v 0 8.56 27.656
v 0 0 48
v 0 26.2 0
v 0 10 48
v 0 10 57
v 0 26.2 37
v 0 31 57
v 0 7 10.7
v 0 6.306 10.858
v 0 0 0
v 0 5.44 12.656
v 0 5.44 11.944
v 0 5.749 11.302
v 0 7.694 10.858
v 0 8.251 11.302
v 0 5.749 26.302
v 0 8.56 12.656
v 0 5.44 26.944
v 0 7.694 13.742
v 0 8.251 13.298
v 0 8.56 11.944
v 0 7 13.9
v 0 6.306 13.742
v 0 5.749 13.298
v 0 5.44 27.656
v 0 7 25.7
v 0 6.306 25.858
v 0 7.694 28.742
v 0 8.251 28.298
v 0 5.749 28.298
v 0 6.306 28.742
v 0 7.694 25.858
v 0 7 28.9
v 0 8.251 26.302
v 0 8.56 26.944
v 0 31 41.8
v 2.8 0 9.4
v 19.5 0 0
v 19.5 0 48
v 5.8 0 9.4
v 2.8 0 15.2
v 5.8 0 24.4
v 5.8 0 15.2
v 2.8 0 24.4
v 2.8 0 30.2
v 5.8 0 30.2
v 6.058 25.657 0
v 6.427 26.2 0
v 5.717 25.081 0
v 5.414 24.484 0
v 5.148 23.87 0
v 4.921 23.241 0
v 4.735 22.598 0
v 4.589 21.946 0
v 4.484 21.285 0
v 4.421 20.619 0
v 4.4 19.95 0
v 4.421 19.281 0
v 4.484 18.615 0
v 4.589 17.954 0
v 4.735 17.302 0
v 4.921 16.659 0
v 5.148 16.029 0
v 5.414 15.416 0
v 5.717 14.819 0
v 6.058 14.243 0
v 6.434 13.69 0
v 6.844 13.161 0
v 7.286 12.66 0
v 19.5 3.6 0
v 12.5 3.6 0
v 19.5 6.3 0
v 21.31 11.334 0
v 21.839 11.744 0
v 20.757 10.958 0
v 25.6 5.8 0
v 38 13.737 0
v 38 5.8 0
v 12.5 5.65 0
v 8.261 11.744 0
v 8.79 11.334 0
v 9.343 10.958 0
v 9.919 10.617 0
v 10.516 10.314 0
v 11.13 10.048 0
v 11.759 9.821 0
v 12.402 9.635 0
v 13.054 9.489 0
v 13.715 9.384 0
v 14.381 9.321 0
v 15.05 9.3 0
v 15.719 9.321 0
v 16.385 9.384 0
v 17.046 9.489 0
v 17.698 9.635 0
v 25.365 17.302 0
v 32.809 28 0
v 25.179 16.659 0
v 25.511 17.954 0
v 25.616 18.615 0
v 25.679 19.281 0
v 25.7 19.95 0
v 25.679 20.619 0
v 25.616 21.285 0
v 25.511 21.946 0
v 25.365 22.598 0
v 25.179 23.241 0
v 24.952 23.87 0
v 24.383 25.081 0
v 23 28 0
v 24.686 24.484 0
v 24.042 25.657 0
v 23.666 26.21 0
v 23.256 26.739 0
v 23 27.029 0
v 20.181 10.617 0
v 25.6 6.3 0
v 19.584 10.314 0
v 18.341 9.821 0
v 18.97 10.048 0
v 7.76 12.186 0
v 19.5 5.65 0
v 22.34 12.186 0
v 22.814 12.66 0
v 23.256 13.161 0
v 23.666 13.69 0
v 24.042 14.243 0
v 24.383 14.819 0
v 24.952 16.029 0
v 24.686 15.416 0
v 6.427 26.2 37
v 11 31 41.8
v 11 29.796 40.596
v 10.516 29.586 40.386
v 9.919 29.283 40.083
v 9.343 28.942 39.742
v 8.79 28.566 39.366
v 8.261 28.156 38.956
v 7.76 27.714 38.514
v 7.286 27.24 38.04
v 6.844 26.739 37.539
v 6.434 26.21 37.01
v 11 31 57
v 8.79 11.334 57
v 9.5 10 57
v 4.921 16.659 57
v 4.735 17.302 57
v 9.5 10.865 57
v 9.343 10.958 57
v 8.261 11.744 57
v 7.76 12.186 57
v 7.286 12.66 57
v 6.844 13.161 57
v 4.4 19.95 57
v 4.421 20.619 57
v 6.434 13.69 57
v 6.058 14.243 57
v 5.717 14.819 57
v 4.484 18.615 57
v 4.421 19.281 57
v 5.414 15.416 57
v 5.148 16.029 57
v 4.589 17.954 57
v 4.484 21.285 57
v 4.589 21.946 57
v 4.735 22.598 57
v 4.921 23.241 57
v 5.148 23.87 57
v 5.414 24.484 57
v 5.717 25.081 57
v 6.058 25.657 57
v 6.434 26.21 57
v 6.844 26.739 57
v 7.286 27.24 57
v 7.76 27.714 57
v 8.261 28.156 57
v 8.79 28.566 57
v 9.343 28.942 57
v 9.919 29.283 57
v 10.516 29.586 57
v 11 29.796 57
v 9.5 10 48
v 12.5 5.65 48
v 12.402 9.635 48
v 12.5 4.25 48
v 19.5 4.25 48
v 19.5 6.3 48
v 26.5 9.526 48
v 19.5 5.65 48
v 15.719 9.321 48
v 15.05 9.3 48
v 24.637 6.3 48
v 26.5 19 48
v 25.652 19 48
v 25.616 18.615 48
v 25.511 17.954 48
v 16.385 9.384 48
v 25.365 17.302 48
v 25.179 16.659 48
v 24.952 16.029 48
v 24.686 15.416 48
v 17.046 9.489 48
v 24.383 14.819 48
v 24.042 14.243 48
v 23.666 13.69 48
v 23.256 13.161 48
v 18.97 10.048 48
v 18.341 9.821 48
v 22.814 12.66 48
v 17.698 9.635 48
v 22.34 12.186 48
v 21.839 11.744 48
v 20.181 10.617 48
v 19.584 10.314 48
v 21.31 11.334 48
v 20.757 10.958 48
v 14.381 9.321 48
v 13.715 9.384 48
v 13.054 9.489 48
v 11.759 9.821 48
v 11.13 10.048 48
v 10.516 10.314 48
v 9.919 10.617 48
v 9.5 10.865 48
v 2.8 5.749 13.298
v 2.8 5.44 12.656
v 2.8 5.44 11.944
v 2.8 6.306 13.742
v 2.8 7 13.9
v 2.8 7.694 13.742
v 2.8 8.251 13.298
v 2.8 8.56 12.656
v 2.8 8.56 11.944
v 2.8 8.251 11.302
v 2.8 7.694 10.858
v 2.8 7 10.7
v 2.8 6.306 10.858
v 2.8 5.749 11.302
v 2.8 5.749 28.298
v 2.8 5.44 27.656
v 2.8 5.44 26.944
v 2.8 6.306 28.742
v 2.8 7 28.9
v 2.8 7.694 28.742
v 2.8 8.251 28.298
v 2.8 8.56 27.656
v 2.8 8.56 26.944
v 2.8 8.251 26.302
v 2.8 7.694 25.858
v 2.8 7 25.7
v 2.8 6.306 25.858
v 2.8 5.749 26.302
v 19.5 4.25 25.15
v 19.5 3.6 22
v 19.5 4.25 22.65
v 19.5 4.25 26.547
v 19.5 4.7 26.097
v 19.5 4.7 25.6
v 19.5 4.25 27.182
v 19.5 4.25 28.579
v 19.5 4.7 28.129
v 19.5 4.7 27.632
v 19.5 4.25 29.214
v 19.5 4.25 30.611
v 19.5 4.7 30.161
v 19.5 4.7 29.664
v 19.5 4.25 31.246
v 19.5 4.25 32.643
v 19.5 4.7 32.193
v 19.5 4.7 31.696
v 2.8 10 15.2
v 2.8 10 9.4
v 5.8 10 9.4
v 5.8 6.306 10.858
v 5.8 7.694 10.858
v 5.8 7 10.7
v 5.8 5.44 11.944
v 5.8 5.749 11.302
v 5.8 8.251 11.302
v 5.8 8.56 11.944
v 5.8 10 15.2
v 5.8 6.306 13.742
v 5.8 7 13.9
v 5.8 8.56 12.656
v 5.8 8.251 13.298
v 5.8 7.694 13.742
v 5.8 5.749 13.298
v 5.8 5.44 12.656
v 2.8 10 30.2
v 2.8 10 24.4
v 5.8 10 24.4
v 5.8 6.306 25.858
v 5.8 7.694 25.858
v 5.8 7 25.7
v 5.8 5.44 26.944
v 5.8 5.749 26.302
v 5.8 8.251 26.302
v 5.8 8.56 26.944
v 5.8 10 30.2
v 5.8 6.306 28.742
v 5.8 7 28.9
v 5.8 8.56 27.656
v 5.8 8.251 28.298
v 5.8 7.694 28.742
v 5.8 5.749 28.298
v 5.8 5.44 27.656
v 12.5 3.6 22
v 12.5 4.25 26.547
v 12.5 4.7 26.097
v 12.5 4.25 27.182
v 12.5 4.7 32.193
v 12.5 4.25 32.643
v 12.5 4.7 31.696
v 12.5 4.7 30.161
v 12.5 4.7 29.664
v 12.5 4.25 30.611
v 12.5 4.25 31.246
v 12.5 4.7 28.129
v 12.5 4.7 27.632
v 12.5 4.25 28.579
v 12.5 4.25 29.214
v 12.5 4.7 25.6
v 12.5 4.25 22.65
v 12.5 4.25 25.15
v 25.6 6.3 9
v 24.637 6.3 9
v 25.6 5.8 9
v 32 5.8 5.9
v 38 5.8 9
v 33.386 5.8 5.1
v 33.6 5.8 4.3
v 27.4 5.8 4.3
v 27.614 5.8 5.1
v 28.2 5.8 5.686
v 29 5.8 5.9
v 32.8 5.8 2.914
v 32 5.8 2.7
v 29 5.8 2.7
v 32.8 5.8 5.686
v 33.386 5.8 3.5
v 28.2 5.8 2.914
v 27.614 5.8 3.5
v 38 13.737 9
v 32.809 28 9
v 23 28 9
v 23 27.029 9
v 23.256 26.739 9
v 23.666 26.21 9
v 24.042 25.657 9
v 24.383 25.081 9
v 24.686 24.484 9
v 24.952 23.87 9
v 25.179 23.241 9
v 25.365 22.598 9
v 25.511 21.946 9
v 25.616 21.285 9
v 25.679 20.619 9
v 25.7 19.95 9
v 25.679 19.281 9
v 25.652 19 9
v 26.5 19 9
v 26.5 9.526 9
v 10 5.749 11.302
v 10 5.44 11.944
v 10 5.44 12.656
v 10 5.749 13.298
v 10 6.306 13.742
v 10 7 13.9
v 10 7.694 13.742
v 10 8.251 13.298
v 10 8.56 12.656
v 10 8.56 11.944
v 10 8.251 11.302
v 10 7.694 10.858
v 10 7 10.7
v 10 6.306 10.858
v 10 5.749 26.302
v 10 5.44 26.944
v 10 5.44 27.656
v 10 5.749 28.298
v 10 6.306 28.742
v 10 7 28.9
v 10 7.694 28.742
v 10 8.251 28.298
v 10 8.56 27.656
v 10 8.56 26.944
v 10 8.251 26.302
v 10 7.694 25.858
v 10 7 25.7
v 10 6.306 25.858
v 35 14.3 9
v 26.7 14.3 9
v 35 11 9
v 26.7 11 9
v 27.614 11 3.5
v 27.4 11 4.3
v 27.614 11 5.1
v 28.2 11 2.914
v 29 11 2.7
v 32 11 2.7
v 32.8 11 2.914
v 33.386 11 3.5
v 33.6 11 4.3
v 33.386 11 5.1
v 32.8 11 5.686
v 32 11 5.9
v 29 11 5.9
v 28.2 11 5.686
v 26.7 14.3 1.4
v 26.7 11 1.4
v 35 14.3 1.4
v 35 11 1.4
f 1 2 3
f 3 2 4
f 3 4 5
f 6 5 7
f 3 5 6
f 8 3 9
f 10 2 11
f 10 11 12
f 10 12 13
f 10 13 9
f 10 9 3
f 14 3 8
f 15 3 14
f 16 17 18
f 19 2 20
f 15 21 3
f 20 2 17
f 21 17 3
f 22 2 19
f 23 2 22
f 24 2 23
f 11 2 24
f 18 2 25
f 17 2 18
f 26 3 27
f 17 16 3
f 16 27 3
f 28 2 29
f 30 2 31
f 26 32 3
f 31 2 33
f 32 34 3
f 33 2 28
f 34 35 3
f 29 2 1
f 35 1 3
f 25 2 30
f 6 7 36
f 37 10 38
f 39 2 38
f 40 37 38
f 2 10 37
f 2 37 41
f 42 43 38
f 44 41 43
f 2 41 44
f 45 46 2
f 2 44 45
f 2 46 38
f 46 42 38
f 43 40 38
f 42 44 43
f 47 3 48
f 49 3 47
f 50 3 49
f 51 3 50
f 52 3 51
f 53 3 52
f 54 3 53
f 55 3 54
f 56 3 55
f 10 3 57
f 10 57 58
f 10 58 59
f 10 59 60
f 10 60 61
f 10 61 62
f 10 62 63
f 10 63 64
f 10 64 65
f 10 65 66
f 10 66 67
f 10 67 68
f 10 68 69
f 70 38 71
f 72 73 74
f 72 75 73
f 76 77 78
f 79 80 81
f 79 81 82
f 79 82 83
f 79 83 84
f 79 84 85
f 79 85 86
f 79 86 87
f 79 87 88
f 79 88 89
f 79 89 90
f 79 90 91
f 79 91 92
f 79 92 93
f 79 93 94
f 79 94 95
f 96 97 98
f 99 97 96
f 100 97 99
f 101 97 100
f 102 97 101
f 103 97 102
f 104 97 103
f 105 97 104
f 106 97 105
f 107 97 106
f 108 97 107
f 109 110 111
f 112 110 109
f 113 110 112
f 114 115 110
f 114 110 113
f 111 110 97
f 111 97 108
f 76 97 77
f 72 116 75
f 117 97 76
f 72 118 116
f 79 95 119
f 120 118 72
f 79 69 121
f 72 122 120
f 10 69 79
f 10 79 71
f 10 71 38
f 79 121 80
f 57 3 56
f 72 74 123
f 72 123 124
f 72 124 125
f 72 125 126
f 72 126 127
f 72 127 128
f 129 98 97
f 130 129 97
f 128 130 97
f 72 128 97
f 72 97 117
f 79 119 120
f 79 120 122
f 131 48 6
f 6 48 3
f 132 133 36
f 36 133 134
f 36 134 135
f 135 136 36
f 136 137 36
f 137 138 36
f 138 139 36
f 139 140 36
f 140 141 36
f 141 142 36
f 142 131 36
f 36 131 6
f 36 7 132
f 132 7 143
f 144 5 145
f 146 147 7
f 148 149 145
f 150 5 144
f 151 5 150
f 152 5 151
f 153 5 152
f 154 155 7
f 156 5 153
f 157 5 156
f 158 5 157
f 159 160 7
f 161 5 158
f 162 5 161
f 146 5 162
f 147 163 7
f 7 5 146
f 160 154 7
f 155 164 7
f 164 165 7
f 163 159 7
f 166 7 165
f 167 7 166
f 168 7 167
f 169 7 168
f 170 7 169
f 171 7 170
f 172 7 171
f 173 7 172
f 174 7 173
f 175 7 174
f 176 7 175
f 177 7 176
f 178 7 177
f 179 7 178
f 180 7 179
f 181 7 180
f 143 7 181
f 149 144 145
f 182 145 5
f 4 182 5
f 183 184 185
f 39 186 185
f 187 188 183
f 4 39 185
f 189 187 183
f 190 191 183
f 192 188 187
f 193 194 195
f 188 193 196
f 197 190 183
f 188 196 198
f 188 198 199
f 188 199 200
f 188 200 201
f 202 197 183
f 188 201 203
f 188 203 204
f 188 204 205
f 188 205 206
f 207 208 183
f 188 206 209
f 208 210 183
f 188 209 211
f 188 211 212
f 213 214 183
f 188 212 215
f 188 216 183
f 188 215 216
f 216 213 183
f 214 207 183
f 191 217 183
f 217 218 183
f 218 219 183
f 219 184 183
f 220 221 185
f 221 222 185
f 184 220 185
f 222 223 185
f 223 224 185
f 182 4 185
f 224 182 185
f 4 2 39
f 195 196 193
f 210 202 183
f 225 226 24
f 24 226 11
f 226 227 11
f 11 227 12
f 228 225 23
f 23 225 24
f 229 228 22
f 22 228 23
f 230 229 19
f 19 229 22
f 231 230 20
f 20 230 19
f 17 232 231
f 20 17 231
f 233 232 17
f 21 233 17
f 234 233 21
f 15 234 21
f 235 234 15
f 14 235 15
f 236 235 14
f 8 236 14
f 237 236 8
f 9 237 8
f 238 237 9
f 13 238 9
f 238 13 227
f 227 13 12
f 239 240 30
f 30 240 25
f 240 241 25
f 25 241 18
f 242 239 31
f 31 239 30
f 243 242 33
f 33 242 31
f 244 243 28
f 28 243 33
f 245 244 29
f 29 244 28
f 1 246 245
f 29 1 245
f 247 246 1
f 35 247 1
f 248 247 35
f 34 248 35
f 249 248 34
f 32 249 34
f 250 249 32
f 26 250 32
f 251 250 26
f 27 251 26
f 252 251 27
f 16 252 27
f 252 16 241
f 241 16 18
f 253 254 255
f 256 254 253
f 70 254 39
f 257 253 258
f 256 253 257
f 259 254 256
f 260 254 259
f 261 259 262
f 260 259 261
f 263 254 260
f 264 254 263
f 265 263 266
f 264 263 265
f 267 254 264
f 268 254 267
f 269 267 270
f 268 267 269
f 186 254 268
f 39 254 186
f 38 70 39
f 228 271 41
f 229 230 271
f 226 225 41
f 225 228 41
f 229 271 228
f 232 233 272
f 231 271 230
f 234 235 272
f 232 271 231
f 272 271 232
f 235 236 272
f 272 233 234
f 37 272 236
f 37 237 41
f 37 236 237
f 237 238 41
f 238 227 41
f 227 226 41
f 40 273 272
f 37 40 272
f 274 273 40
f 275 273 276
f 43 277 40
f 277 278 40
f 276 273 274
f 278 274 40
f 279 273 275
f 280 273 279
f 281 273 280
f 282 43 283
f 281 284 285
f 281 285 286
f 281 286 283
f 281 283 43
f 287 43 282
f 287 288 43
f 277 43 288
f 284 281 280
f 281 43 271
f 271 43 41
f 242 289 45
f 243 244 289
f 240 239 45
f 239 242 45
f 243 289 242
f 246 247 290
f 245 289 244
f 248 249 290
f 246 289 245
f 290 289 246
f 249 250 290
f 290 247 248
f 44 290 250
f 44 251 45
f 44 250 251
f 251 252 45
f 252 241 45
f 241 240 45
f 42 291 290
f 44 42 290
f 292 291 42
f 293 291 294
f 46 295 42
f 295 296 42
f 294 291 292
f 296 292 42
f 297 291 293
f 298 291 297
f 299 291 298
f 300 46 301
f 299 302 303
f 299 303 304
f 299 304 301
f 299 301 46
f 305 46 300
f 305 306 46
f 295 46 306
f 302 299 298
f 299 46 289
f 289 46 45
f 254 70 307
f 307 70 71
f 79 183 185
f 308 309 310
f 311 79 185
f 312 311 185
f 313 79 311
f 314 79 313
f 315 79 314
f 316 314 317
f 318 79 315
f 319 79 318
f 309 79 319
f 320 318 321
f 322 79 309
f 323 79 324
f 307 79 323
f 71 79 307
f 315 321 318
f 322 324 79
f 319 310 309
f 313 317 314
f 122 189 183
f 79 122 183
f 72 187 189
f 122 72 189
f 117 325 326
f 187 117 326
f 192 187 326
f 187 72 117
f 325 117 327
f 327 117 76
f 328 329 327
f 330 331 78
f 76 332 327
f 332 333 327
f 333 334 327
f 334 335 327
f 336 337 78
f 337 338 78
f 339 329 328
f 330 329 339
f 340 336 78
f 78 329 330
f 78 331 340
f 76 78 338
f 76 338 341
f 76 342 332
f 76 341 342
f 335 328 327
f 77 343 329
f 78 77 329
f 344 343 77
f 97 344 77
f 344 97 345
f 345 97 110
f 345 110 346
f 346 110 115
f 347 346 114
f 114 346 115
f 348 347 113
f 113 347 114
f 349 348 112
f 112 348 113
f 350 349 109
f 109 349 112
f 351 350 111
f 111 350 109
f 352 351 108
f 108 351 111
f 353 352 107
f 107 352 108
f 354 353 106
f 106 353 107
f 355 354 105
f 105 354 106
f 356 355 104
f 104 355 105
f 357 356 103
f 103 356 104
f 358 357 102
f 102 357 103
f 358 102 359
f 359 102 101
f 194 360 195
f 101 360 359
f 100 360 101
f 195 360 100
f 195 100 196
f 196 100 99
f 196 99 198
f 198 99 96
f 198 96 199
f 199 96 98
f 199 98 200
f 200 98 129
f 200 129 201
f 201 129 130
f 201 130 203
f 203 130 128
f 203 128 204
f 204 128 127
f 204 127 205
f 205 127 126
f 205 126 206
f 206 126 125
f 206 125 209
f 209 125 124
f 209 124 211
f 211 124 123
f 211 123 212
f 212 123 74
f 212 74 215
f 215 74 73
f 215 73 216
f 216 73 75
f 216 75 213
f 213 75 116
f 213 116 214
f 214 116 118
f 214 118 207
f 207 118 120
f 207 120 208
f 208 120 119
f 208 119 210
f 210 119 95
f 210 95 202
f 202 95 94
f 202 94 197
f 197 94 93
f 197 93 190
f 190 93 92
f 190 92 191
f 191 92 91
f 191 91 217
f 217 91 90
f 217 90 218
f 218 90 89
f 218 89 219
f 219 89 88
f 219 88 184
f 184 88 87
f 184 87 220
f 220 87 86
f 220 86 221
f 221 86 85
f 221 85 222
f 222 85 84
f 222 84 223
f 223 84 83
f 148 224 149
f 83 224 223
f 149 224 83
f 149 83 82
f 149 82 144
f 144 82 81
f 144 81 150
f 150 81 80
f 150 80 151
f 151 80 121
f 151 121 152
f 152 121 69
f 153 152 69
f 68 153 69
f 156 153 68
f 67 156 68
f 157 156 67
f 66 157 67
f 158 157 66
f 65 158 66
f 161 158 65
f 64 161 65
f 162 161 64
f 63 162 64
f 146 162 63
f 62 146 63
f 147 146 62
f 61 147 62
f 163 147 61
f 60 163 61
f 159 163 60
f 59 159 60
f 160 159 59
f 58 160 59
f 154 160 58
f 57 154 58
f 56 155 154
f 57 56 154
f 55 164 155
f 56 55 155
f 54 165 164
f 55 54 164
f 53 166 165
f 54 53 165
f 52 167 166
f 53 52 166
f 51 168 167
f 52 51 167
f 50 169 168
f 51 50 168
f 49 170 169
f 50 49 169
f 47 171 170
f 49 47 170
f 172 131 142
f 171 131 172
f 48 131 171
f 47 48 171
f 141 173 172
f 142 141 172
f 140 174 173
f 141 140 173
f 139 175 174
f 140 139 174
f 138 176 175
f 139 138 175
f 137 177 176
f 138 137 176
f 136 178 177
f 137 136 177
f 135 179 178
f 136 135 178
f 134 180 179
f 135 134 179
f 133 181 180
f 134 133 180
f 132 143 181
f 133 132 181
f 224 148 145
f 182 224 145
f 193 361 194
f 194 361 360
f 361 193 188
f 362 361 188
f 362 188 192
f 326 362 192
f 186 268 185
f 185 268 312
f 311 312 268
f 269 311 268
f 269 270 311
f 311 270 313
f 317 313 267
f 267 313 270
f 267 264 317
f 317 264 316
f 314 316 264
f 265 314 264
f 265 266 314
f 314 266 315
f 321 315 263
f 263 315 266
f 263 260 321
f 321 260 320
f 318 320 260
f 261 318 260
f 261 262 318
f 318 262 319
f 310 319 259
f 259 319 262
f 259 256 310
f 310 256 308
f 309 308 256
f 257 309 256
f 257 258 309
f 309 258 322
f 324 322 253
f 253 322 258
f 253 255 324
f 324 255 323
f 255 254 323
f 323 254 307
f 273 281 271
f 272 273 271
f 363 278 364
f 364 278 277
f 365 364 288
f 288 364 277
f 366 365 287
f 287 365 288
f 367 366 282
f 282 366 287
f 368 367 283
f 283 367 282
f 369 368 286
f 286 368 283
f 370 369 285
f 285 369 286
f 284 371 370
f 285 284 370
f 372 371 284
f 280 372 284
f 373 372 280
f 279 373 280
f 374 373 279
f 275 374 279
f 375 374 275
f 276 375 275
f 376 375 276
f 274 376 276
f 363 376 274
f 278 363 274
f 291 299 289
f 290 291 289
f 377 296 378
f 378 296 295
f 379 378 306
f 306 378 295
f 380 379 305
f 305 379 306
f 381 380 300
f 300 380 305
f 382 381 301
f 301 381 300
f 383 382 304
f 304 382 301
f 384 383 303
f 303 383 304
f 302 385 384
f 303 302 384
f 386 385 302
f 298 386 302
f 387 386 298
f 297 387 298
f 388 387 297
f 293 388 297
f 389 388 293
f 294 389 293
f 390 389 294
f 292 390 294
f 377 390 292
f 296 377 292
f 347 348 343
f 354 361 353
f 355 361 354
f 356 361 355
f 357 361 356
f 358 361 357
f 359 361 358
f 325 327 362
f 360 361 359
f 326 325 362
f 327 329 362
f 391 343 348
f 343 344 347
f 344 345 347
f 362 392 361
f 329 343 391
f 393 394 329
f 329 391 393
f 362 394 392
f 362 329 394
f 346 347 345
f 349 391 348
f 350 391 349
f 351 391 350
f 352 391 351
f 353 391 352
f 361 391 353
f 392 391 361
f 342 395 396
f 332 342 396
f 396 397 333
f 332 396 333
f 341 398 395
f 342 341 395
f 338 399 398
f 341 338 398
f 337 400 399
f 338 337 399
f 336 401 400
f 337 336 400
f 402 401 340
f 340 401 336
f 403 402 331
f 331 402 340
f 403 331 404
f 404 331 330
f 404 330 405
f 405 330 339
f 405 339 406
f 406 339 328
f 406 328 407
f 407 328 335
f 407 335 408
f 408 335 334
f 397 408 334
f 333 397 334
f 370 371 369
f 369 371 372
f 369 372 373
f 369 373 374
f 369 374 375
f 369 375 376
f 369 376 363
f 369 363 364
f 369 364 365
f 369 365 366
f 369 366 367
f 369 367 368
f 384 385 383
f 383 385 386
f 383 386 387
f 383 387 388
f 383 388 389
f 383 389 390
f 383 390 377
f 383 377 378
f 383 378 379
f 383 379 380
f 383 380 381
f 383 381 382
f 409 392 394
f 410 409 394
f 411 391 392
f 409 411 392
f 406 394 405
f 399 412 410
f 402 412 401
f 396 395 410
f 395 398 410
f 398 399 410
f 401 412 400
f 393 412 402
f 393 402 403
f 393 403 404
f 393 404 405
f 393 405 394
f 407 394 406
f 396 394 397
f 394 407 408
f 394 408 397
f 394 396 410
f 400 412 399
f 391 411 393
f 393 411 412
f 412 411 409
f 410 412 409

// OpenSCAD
// Ormerod X-carriage. This does not include mounting for the z-probe, because I use my hot-end sensor board instead.

useFSR = 0;			// set nonzero to include slot for FSR

overlap=1;			// used when adding/subtracting parts to avoid problems
lots=60;				// used for subtracting parts that need to extend beyond everything else
radius=10.65;			// redius to fit linear bearing
mxlPitch=2.032;		// tooth pitch of MXL belt
toothSize=1.2;		// side of cube we use for making teeth to grip the MXL belt
toothOffset=4.1;		// y-offset of teeth
nutTrapWidth=5.8;	// M3 nut is 5.4mm across flats, 6.1mm across widest point.
						// Setting nut trap width to 5.6mm, we actually got 5.3mm.
nutTrapDepth=3.0;	// M3 nut is 2.3mm thick. Allow at least 0.4mm extra.
slotXstart=29;
slotZ=4.3;
slotWidth=3;

difference () {
	union() {
		difference() {
			// Main body
			cube([45,31,57]);
			// Hole for linear bearing
			translate([4.4+radius,9.3+radius,-overlap]) cylinder(r=radius,h=60,$fn=100);
			translate([-overlap,26.2,-overlap]) cube([24,20,37+overlap]);
			translate([-overlap,28,-overlap]) cube([lots,20,37+overlap]);
			translate([11,19,9]) cube([lots,20,60]);
			translate([26.5,-overlap,9]) cube([lots,30,80]);
			translate([23,-overlap,9]) cube([lots,6.3+overlap,lots]);
			translate([-overlap,-overlap,48]) cube([lots,10+overlap,lots]);
			translate([9.5,-overlap,48]) cube([lots,25,lots]);
			translate([-overlap,26.2,37]) rotate([-45,0,0]) cube([lots,lots,lots]);
			translate([19.7+overlap,-overlap,-overlap]) cube([lots,5.8+overlap,20]);
			// Belt slot
			translate([12.5,4.25,-overlap]) cube([10,1.4,lots]);
			translate([12.5,3.6,-overlap]) cube([10,1,22+overlap]);
			translate([12.5,3.6,22]) rotate([-45,0,0]) cube([10,1,1]);

			// Slot for x-runner nut
			translate([slotXstart-2.3,11,slotZ-(nutTrapWidth/2)])
				cube([slotWidth+2.3+3,3.3,20]);
			// Slot for x-runner screw
			translate([slotXstart,0,slotZ-1.6]) cube([slotWidth,13,3.2]);
			translate([slotXstart,0,slotZ]) rotate([-90,0,0]) cylinder(r=1.6,h=13,$fn=12);
			translate([slotXstart+slotWidth,0,slotZ])
				rotate([-90,0,0]) cylinder(r=1.6,h=13,$fn=12);
			// Screw holes
			translate([-overlap,7,12.3]) rotate([0,90,0]) cylinder(r=1.6,h=10+overlap,$fn=14);
			translate([-overlap,7,12.3+15]) rotate([0,90,0]) cylinder(r=1.6,h=10+overlap,$fn=14);
			// Nut traps
			translate([2.8,-overlap,12.3-(nutTrapWidth/2)])
				cube([nutTrapDepth,10+overlap,nutTrapWidth]);
			translate([2.8,-overlap,12.3+15-(nutTrapWidth/2)])
				cube([nutTrapDepth,10+overlap,nutTrapWidth]);
			if (useFSR != 0)
			{
				// Separate runner screw slot from main body
				translate([21,0,-overlap]) rotate([0,0,-29.95]) cube([1,21.3,lots]);
				// Slot for FSR
				translate([38,0,-overlap]) cube([0.6,12,lots]);
				translate([38,12.5-overlap,-overlap]) rotate([0,0,34.8]) cube([0.8,7.87,lots]);
				translate([31.5,17.96,-overlap]) cube([1,5,lots]);
				translate([33.5,17.96,-overlap]) cube([1,5,lots]);
				// Shave off bottom corner
				translate([48,0,-overlap]) rotate([0,0,20]) cube([lots,lots,lots]);
			} else {
				// Shave off bottom corner
				translate([43,0,-overlap]) rotate([0,0,20]) cube([lots,lots,lots]);
				translate([38,0,-overlap]) cube([lots,lots,lots]);
			}
			translate([21,0,9]) rotate([0,0,-30]) cube([lots,25,lots]);
		}
		// Teeth to grip belt
		difference() {
			union () {
				translate([12.5-overlap,toothOffset,25])
					rotate([45,0,0]) cube([10,toothSize,toothSize]);
				translate([12.5-overlap,toothOffset,25+mxlPitch])
					rotate([45,0,0]) cube([10,toothSize,toothSize]);
				translate([12.5-overlap,toothOffset,25+2*mxlPitch])
					rotate([45,0,0]) cube([10,toothSize,toothSize]);
				translate([12.5-overlap,toothOffset,25+3*mxlPitch])
					rotate([45,0,0]) cube([10,toothSize,toothSize]);
			}
			// Blunt the teeth to allow sufficient belt clearance
			translate([12.5,toothOffset+0.6,-overlap]) cube([10,0.5,lots]);
		}
	}
	translate([19.5,-overlap,-overlap]) cube([6.1,6.3+overlap,60]);
}
